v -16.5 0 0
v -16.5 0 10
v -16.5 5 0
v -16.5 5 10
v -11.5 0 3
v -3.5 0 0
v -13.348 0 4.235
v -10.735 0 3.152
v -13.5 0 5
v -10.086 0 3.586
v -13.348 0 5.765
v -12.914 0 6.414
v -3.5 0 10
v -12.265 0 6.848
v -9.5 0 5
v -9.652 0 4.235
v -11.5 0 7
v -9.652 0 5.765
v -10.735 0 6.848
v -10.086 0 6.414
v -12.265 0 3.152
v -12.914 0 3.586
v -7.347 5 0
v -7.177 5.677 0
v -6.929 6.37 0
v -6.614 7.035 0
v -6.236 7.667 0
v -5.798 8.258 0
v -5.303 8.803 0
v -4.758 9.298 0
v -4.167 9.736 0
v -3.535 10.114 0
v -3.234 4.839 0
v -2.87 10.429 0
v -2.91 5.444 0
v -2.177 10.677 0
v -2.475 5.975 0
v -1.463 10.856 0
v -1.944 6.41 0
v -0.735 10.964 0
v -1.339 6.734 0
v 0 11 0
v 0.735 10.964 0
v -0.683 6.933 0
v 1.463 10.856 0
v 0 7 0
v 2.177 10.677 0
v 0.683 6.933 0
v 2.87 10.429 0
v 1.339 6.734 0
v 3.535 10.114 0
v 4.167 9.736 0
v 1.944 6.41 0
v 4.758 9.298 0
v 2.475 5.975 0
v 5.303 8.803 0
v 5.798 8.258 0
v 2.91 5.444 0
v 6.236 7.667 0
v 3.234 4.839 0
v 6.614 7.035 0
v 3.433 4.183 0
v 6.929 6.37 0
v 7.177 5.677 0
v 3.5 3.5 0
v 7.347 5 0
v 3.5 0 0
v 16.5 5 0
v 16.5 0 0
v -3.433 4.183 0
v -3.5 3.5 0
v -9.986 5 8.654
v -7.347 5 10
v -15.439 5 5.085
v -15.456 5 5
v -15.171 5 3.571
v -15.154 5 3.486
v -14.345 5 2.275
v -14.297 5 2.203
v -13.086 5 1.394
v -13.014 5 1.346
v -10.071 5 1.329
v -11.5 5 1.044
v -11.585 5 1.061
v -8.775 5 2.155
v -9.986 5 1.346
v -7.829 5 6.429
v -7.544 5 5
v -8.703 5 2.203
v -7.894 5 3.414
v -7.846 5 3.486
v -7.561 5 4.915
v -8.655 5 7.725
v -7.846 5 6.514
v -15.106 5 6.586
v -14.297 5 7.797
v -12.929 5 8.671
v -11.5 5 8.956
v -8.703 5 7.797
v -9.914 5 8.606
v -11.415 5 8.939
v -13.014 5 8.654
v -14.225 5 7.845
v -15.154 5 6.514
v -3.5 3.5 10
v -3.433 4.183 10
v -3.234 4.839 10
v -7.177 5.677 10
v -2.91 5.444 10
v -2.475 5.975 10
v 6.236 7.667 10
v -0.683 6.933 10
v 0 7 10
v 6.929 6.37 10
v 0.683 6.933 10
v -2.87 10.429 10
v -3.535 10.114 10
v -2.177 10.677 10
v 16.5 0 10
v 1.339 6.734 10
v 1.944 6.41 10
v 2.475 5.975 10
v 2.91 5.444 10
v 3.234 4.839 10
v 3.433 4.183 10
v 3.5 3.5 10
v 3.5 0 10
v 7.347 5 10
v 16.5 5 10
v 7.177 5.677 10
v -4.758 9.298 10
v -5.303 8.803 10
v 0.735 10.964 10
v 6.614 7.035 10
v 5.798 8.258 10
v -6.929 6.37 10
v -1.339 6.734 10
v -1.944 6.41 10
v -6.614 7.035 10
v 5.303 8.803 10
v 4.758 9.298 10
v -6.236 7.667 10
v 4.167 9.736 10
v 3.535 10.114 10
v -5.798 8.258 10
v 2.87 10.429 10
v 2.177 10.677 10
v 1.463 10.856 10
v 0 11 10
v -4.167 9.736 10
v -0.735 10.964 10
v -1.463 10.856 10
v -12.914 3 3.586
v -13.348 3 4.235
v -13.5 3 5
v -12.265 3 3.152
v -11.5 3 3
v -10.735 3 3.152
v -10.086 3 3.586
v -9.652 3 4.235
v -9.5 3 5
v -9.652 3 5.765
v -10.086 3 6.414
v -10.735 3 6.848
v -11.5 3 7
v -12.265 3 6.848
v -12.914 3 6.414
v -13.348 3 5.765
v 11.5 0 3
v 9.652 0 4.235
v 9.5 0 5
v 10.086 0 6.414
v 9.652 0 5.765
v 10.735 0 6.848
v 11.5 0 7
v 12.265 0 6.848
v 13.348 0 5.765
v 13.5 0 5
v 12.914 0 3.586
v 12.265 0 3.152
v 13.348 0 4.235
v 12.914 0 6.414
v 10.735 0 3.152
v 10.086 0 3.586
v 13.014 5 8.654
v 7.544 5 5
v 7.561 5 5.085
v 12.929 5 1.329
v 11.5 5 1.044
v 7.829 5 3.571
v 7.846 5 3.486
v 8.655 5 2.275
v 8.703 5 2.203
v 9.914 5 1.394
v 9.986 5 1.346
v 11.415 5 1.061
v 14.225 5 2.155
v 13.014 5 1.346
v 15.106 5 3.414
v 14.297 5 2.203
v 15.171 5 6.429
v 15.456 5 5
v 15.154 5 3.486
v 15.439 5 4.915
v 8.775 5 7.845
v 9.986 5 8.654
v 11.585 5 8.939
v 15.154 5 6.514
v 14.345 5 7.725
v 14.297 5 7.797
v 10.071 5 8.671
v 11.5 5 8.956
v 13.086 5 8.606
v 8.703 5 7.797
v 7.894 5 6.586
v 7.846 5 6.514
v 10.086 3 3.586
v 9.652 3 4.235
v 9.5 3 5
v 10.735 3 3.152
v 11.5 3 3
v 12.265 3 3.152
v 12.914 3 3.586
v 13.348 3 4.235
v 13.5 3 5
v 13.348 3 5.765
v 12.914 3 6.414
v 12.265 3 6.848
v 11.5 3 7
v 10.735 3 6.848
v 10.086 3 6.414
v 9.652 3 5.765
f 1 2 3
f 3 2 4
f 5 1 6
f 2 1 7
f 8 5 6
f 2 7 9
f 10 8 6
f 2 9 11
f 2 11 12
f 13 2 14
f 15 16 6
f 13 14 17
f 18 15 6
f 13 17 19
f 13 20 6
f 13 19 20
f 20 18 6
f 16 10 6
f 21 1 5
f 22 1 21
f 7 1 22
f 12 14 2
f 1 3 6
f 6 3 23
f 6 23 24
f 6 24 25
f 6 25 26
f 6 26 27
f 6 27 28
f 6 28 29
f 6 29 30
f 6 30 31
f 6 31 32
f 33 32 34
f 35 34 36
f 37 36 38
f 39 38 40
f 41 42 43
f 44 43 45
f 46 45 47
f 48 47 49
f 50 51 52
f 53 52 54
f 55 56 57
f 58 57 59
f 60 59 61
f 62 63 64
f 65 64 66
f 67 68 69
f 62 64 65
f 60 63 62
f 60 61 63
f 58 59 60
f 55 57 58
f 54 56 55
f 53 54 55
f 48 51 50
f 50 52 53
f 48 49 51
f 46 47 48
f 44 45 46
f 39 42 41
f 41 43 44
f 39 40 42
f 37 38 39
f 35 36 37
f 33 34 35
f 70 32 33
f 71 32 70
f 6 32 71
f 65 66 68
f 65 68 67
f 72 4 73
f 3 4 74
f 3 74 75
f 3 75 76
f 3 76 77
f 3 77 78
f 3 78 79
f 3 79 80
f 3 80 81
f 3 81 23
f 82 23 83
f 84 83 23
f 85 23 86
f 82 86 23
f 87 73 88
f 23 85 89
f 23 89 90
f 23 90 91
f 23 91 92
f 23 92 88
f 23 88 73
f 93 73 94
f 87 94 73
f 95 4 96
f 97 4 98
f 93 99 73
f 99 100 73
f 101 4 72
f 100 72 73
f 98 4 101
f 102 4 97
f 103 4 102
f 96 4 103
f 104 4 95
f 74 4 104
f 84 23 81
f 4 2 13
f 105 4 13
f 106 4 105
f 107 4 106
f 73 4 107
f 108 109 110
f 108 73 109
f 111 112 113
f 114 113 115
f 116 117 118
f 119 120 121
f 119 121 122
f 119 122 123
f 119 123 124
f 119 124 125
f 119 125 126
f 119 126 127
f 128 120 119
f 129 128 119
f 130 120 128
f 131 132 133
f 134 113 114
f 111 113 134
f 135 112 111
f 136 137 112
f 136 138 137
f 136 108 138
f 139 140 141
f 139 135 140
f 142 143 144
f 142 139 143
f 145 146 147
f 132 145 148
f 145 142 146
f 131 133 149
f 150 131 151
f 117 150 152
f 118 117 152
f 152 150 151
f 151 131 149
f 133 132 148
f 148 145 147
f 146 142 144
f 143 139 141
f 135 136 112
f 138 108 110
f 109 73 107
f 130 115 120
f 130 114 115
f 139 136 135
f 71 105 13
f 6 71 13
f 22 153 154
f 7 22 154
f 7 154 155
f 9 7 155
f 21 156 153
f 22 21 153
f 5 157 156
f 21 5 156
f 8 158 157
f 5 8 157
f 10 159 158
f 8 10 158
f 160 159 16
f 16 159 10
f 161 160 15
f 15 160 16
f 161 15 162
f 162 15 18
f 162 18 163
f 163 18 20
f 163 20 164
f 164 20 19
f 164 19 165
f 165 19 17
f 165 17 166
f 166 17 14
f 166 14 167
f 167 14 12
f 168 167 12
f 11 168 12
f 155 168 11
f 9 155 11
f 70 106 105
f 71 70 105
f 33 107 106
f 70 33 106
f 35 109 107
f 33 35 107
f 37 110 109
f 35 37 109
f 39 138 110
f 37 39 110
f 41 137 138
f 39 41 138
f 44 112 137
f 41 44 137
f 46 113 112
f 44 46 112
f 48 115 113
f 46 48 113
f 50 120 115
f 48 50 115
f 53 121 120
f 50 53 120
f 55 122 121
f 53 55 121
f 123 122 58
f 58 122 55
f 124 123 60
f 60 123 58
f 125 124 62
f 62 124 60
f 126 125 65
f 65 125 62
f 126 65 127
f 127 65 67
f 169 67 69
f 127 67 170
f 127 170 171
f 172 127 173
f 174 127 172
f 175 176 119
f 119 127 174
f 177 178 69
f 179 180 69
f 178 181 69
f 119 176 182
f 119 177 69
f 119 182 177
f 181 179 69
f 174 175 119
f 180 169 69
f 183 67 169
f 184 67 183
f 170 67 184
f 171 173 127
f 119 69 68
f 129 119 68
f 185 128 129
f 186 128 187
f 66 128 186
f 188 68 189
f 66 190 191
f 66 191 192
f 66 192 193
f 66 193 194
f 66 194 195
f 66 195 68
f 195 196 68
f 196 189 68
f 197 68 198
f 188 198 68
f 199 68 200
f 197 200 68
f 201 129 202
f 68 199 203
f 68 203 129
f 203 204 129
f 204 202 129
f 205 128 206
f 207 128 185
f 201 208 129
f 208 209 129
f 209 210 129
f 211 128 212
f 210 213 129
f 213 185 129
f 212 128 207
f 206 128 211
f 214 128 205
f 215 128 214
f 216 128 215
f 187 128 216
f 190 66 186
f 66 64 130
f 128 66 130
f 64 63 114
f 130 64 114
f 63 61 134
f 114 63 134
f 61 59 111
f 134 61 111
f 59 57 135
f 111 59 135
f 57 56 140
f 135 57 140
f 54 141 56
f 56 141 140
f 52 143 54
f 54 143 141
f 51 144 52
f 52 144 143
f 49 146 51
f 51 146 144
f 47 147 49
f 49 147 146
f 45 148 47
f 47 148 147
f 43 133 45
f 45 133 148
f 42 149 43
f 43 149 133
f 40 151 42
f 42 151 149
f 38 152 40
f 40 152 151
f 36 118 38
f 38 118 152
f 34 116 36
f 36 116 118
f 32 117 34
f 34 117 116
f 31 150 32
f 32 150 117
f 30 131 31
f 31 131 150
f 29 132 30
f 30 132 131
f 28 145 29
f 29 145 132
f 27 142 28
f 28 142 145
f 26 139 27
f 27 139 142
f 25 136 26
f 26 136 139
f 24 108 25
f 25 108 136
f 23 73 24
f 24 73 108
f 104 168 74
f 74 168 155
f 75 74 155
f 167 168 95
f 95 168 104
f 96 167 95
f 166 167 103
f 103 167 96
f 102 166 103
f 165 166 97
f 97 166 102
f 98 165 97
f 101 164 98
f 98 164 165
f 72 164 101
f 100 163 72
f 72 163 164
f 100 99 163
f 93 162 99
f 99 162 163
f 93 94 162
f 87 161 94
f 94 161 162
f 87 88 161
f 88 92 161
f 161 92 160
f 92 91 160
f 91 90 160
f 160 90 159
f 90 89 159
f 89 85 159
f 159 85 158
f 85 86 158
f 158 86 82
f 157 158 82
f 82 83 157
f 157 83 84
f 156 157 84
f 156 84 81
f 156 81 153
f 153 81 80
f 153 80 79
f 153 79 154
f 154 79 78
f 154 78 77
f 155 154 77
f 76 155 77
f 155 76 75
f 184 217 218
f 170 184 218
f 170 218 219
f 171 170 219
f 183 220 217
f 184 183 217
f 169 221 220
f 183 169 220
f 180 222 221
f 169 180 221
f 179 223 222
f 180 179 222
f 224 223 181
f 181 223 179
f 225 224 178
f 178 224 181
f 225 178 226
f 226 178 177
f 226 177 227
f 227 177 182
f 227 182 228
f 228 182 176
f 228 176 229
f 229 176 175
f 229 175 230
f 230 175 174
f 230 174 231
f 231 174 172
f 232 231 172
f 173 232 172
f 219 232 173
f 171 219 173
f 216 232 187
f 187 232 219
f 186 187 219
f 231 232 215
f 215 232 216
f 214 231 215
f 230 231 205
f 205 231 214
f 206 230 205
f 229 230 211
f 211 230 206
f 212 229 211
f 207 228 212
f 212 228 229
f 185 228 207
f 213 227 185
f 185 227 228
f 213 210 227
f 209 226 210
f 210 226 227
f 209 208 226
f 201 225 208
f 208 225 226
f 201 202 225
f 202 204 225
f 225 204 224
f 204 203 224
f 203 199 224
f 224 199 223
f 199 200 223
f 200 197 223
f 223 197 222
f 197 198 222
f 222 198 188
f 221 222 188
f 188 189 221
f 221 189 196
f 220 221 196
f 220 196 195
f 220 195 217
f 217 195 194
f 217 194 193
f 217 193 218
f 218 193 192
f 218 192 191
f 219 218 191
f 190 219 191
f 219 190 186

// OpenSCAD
// file: common.scad
// CoreBeam Laser Engraver
//
// Licence: CC BY-SA 3.0, http://creativecommons.org/licenses/by-sa/3.0/
// Author: Dominik Scholz <schlotzz@schlotzz.com>
// visit: http://www.schlotzz.com
//
// definitions of common values



// avoid openscad artefacts in preview
epsilon = 0.01;

// increase this if your slicer or printer make holes too tight
extra_radius = 0.1;

// major diameter of metric 3mm thread
m3_major = 2.85;
m3_radius = m3_major / 2 + extra_radius;
m3_wide_radius = m3_major / 2 + extra_radius + 0.2;
m3_small_radius = m3_radius - 0.1;

// diameter of metric 3mm hexnut screw head
m3_head_radius = 3 + extra_radius;

// nema 17 dimensions
nema17_width = 42.3;
nema17_hole_offsets = [
	[-15.5, -15.5, 0],
	[-15.5,  15.5, 0],
	[ 15.5, -15.5, 0],
	[ 15.5,  15.5, 0]
];


// hole for retaining a m3 hexnut
module m3_hexnut_cutout(additional_height = 0)
{
	cylinder(r = 3.15 + 2.5 * extra_radius, h = 2.5 + 3 * extra_radius + additional_height, $fn = 6);
}


// rounded rectangle
module roundedRectangle(size, radius)
{
	cube([size[0], size[1] - radius * 2, size[2]], true);
	cube([size[0] - radius * 2, size[1], size[2]], true);

	for (x = [-size[0] / 2 + radius, size[0] / 2 - radius])
		for (y = [-size[1] / 2 + radius, size[1] / 2 - radius])
			translate([x, y, 0])
				cylinder(size[2], radius, radius, true);
}


// rounded trapezoid
module roundedTrapezoid(size, radius, bottom)
{
	hull()
	{
		// bottom
		for (i = [[-bottom / 2 + radius, radius, 0], [bottom / 2 - radius, radius, 0]])
			translate(i)
				cylinder(r = radius, h = size[2], $fn = 32);

		// top
		for (i = [[-size[0] / 2 + radius, size[1] - radius, 0], [size[0] / 2 - radius, size[1] - radius, 0]])
			translate(i)
				cylinder(r = radius, h = size[2], $fn = 32);


	}

}


// hole for wood screw 4x15, countersunk head
module woodscrew_cutout()
{
	translate([0, 0, -epsilon])
		cylinder(r = 2.0, h = 3 + epsilon * 2, $fn = 16);

	translate([0, 0, 3])
		cylinder(r1 = 2.0, r2 = 4.2, h = 2.25, $fn = 16);

	translate([0, 0, 5.25 - epsilon])
		cylinder(r = 4.2, h = 30, $fn = 16);
}
// main file
// CoreBeam Laser Engraver
//
// Licence: CC BY-SA 3.0, http://creativecommons.org/licenses/by-sa/3.0/
// Author: Dominik Scholz <schlotzz@schlotzz.com>
// visit: http://www.schlotzz.com
//
// cable mount


// include files
include <common.scad>;



// cable mount for holding stepper motor cables on wooden frame
module cable_mount()
{
	depth = 10;
	height = 5;
	radius = 7 / 2;
	thickness = 4;
	wings = 9;

	difference()
	{
		// base
		union()
		{
			intersection()
			{
				translate([0, radius, 0])
					cylinder(r = radius + thickness, h = depth, $fn = 64);
				translate([-radius - thickness, 0, 0])
					cube([2 * radius + 2 * thickness, 2 * radius + thickness, depth]);
			}
			translate([-radius - thickness - wings, 0, 0])
				cube([2 * radius + 2 * thickness + 2 * wings, height, depth]);
		}
	
		// cable cutout
		translate([0, radius, -epsilon])
			cylinder(r = radius, h = depth + 2 * epsilon, $fn = 32);
		translate([-radius, -epsilon, -epsilon])
			cube([radius * 2, radius + epsilon, depth + 2 * epsilon]);

		// mounting holes
		for (i = [-radius - thickness - wings + 5, radius + thickness + wings - 5])
		translate([i, 0, depth / 2])
			rotate([-90, 0, 0])
				woodscrew_cutout();
	}


}

cable_mount();
